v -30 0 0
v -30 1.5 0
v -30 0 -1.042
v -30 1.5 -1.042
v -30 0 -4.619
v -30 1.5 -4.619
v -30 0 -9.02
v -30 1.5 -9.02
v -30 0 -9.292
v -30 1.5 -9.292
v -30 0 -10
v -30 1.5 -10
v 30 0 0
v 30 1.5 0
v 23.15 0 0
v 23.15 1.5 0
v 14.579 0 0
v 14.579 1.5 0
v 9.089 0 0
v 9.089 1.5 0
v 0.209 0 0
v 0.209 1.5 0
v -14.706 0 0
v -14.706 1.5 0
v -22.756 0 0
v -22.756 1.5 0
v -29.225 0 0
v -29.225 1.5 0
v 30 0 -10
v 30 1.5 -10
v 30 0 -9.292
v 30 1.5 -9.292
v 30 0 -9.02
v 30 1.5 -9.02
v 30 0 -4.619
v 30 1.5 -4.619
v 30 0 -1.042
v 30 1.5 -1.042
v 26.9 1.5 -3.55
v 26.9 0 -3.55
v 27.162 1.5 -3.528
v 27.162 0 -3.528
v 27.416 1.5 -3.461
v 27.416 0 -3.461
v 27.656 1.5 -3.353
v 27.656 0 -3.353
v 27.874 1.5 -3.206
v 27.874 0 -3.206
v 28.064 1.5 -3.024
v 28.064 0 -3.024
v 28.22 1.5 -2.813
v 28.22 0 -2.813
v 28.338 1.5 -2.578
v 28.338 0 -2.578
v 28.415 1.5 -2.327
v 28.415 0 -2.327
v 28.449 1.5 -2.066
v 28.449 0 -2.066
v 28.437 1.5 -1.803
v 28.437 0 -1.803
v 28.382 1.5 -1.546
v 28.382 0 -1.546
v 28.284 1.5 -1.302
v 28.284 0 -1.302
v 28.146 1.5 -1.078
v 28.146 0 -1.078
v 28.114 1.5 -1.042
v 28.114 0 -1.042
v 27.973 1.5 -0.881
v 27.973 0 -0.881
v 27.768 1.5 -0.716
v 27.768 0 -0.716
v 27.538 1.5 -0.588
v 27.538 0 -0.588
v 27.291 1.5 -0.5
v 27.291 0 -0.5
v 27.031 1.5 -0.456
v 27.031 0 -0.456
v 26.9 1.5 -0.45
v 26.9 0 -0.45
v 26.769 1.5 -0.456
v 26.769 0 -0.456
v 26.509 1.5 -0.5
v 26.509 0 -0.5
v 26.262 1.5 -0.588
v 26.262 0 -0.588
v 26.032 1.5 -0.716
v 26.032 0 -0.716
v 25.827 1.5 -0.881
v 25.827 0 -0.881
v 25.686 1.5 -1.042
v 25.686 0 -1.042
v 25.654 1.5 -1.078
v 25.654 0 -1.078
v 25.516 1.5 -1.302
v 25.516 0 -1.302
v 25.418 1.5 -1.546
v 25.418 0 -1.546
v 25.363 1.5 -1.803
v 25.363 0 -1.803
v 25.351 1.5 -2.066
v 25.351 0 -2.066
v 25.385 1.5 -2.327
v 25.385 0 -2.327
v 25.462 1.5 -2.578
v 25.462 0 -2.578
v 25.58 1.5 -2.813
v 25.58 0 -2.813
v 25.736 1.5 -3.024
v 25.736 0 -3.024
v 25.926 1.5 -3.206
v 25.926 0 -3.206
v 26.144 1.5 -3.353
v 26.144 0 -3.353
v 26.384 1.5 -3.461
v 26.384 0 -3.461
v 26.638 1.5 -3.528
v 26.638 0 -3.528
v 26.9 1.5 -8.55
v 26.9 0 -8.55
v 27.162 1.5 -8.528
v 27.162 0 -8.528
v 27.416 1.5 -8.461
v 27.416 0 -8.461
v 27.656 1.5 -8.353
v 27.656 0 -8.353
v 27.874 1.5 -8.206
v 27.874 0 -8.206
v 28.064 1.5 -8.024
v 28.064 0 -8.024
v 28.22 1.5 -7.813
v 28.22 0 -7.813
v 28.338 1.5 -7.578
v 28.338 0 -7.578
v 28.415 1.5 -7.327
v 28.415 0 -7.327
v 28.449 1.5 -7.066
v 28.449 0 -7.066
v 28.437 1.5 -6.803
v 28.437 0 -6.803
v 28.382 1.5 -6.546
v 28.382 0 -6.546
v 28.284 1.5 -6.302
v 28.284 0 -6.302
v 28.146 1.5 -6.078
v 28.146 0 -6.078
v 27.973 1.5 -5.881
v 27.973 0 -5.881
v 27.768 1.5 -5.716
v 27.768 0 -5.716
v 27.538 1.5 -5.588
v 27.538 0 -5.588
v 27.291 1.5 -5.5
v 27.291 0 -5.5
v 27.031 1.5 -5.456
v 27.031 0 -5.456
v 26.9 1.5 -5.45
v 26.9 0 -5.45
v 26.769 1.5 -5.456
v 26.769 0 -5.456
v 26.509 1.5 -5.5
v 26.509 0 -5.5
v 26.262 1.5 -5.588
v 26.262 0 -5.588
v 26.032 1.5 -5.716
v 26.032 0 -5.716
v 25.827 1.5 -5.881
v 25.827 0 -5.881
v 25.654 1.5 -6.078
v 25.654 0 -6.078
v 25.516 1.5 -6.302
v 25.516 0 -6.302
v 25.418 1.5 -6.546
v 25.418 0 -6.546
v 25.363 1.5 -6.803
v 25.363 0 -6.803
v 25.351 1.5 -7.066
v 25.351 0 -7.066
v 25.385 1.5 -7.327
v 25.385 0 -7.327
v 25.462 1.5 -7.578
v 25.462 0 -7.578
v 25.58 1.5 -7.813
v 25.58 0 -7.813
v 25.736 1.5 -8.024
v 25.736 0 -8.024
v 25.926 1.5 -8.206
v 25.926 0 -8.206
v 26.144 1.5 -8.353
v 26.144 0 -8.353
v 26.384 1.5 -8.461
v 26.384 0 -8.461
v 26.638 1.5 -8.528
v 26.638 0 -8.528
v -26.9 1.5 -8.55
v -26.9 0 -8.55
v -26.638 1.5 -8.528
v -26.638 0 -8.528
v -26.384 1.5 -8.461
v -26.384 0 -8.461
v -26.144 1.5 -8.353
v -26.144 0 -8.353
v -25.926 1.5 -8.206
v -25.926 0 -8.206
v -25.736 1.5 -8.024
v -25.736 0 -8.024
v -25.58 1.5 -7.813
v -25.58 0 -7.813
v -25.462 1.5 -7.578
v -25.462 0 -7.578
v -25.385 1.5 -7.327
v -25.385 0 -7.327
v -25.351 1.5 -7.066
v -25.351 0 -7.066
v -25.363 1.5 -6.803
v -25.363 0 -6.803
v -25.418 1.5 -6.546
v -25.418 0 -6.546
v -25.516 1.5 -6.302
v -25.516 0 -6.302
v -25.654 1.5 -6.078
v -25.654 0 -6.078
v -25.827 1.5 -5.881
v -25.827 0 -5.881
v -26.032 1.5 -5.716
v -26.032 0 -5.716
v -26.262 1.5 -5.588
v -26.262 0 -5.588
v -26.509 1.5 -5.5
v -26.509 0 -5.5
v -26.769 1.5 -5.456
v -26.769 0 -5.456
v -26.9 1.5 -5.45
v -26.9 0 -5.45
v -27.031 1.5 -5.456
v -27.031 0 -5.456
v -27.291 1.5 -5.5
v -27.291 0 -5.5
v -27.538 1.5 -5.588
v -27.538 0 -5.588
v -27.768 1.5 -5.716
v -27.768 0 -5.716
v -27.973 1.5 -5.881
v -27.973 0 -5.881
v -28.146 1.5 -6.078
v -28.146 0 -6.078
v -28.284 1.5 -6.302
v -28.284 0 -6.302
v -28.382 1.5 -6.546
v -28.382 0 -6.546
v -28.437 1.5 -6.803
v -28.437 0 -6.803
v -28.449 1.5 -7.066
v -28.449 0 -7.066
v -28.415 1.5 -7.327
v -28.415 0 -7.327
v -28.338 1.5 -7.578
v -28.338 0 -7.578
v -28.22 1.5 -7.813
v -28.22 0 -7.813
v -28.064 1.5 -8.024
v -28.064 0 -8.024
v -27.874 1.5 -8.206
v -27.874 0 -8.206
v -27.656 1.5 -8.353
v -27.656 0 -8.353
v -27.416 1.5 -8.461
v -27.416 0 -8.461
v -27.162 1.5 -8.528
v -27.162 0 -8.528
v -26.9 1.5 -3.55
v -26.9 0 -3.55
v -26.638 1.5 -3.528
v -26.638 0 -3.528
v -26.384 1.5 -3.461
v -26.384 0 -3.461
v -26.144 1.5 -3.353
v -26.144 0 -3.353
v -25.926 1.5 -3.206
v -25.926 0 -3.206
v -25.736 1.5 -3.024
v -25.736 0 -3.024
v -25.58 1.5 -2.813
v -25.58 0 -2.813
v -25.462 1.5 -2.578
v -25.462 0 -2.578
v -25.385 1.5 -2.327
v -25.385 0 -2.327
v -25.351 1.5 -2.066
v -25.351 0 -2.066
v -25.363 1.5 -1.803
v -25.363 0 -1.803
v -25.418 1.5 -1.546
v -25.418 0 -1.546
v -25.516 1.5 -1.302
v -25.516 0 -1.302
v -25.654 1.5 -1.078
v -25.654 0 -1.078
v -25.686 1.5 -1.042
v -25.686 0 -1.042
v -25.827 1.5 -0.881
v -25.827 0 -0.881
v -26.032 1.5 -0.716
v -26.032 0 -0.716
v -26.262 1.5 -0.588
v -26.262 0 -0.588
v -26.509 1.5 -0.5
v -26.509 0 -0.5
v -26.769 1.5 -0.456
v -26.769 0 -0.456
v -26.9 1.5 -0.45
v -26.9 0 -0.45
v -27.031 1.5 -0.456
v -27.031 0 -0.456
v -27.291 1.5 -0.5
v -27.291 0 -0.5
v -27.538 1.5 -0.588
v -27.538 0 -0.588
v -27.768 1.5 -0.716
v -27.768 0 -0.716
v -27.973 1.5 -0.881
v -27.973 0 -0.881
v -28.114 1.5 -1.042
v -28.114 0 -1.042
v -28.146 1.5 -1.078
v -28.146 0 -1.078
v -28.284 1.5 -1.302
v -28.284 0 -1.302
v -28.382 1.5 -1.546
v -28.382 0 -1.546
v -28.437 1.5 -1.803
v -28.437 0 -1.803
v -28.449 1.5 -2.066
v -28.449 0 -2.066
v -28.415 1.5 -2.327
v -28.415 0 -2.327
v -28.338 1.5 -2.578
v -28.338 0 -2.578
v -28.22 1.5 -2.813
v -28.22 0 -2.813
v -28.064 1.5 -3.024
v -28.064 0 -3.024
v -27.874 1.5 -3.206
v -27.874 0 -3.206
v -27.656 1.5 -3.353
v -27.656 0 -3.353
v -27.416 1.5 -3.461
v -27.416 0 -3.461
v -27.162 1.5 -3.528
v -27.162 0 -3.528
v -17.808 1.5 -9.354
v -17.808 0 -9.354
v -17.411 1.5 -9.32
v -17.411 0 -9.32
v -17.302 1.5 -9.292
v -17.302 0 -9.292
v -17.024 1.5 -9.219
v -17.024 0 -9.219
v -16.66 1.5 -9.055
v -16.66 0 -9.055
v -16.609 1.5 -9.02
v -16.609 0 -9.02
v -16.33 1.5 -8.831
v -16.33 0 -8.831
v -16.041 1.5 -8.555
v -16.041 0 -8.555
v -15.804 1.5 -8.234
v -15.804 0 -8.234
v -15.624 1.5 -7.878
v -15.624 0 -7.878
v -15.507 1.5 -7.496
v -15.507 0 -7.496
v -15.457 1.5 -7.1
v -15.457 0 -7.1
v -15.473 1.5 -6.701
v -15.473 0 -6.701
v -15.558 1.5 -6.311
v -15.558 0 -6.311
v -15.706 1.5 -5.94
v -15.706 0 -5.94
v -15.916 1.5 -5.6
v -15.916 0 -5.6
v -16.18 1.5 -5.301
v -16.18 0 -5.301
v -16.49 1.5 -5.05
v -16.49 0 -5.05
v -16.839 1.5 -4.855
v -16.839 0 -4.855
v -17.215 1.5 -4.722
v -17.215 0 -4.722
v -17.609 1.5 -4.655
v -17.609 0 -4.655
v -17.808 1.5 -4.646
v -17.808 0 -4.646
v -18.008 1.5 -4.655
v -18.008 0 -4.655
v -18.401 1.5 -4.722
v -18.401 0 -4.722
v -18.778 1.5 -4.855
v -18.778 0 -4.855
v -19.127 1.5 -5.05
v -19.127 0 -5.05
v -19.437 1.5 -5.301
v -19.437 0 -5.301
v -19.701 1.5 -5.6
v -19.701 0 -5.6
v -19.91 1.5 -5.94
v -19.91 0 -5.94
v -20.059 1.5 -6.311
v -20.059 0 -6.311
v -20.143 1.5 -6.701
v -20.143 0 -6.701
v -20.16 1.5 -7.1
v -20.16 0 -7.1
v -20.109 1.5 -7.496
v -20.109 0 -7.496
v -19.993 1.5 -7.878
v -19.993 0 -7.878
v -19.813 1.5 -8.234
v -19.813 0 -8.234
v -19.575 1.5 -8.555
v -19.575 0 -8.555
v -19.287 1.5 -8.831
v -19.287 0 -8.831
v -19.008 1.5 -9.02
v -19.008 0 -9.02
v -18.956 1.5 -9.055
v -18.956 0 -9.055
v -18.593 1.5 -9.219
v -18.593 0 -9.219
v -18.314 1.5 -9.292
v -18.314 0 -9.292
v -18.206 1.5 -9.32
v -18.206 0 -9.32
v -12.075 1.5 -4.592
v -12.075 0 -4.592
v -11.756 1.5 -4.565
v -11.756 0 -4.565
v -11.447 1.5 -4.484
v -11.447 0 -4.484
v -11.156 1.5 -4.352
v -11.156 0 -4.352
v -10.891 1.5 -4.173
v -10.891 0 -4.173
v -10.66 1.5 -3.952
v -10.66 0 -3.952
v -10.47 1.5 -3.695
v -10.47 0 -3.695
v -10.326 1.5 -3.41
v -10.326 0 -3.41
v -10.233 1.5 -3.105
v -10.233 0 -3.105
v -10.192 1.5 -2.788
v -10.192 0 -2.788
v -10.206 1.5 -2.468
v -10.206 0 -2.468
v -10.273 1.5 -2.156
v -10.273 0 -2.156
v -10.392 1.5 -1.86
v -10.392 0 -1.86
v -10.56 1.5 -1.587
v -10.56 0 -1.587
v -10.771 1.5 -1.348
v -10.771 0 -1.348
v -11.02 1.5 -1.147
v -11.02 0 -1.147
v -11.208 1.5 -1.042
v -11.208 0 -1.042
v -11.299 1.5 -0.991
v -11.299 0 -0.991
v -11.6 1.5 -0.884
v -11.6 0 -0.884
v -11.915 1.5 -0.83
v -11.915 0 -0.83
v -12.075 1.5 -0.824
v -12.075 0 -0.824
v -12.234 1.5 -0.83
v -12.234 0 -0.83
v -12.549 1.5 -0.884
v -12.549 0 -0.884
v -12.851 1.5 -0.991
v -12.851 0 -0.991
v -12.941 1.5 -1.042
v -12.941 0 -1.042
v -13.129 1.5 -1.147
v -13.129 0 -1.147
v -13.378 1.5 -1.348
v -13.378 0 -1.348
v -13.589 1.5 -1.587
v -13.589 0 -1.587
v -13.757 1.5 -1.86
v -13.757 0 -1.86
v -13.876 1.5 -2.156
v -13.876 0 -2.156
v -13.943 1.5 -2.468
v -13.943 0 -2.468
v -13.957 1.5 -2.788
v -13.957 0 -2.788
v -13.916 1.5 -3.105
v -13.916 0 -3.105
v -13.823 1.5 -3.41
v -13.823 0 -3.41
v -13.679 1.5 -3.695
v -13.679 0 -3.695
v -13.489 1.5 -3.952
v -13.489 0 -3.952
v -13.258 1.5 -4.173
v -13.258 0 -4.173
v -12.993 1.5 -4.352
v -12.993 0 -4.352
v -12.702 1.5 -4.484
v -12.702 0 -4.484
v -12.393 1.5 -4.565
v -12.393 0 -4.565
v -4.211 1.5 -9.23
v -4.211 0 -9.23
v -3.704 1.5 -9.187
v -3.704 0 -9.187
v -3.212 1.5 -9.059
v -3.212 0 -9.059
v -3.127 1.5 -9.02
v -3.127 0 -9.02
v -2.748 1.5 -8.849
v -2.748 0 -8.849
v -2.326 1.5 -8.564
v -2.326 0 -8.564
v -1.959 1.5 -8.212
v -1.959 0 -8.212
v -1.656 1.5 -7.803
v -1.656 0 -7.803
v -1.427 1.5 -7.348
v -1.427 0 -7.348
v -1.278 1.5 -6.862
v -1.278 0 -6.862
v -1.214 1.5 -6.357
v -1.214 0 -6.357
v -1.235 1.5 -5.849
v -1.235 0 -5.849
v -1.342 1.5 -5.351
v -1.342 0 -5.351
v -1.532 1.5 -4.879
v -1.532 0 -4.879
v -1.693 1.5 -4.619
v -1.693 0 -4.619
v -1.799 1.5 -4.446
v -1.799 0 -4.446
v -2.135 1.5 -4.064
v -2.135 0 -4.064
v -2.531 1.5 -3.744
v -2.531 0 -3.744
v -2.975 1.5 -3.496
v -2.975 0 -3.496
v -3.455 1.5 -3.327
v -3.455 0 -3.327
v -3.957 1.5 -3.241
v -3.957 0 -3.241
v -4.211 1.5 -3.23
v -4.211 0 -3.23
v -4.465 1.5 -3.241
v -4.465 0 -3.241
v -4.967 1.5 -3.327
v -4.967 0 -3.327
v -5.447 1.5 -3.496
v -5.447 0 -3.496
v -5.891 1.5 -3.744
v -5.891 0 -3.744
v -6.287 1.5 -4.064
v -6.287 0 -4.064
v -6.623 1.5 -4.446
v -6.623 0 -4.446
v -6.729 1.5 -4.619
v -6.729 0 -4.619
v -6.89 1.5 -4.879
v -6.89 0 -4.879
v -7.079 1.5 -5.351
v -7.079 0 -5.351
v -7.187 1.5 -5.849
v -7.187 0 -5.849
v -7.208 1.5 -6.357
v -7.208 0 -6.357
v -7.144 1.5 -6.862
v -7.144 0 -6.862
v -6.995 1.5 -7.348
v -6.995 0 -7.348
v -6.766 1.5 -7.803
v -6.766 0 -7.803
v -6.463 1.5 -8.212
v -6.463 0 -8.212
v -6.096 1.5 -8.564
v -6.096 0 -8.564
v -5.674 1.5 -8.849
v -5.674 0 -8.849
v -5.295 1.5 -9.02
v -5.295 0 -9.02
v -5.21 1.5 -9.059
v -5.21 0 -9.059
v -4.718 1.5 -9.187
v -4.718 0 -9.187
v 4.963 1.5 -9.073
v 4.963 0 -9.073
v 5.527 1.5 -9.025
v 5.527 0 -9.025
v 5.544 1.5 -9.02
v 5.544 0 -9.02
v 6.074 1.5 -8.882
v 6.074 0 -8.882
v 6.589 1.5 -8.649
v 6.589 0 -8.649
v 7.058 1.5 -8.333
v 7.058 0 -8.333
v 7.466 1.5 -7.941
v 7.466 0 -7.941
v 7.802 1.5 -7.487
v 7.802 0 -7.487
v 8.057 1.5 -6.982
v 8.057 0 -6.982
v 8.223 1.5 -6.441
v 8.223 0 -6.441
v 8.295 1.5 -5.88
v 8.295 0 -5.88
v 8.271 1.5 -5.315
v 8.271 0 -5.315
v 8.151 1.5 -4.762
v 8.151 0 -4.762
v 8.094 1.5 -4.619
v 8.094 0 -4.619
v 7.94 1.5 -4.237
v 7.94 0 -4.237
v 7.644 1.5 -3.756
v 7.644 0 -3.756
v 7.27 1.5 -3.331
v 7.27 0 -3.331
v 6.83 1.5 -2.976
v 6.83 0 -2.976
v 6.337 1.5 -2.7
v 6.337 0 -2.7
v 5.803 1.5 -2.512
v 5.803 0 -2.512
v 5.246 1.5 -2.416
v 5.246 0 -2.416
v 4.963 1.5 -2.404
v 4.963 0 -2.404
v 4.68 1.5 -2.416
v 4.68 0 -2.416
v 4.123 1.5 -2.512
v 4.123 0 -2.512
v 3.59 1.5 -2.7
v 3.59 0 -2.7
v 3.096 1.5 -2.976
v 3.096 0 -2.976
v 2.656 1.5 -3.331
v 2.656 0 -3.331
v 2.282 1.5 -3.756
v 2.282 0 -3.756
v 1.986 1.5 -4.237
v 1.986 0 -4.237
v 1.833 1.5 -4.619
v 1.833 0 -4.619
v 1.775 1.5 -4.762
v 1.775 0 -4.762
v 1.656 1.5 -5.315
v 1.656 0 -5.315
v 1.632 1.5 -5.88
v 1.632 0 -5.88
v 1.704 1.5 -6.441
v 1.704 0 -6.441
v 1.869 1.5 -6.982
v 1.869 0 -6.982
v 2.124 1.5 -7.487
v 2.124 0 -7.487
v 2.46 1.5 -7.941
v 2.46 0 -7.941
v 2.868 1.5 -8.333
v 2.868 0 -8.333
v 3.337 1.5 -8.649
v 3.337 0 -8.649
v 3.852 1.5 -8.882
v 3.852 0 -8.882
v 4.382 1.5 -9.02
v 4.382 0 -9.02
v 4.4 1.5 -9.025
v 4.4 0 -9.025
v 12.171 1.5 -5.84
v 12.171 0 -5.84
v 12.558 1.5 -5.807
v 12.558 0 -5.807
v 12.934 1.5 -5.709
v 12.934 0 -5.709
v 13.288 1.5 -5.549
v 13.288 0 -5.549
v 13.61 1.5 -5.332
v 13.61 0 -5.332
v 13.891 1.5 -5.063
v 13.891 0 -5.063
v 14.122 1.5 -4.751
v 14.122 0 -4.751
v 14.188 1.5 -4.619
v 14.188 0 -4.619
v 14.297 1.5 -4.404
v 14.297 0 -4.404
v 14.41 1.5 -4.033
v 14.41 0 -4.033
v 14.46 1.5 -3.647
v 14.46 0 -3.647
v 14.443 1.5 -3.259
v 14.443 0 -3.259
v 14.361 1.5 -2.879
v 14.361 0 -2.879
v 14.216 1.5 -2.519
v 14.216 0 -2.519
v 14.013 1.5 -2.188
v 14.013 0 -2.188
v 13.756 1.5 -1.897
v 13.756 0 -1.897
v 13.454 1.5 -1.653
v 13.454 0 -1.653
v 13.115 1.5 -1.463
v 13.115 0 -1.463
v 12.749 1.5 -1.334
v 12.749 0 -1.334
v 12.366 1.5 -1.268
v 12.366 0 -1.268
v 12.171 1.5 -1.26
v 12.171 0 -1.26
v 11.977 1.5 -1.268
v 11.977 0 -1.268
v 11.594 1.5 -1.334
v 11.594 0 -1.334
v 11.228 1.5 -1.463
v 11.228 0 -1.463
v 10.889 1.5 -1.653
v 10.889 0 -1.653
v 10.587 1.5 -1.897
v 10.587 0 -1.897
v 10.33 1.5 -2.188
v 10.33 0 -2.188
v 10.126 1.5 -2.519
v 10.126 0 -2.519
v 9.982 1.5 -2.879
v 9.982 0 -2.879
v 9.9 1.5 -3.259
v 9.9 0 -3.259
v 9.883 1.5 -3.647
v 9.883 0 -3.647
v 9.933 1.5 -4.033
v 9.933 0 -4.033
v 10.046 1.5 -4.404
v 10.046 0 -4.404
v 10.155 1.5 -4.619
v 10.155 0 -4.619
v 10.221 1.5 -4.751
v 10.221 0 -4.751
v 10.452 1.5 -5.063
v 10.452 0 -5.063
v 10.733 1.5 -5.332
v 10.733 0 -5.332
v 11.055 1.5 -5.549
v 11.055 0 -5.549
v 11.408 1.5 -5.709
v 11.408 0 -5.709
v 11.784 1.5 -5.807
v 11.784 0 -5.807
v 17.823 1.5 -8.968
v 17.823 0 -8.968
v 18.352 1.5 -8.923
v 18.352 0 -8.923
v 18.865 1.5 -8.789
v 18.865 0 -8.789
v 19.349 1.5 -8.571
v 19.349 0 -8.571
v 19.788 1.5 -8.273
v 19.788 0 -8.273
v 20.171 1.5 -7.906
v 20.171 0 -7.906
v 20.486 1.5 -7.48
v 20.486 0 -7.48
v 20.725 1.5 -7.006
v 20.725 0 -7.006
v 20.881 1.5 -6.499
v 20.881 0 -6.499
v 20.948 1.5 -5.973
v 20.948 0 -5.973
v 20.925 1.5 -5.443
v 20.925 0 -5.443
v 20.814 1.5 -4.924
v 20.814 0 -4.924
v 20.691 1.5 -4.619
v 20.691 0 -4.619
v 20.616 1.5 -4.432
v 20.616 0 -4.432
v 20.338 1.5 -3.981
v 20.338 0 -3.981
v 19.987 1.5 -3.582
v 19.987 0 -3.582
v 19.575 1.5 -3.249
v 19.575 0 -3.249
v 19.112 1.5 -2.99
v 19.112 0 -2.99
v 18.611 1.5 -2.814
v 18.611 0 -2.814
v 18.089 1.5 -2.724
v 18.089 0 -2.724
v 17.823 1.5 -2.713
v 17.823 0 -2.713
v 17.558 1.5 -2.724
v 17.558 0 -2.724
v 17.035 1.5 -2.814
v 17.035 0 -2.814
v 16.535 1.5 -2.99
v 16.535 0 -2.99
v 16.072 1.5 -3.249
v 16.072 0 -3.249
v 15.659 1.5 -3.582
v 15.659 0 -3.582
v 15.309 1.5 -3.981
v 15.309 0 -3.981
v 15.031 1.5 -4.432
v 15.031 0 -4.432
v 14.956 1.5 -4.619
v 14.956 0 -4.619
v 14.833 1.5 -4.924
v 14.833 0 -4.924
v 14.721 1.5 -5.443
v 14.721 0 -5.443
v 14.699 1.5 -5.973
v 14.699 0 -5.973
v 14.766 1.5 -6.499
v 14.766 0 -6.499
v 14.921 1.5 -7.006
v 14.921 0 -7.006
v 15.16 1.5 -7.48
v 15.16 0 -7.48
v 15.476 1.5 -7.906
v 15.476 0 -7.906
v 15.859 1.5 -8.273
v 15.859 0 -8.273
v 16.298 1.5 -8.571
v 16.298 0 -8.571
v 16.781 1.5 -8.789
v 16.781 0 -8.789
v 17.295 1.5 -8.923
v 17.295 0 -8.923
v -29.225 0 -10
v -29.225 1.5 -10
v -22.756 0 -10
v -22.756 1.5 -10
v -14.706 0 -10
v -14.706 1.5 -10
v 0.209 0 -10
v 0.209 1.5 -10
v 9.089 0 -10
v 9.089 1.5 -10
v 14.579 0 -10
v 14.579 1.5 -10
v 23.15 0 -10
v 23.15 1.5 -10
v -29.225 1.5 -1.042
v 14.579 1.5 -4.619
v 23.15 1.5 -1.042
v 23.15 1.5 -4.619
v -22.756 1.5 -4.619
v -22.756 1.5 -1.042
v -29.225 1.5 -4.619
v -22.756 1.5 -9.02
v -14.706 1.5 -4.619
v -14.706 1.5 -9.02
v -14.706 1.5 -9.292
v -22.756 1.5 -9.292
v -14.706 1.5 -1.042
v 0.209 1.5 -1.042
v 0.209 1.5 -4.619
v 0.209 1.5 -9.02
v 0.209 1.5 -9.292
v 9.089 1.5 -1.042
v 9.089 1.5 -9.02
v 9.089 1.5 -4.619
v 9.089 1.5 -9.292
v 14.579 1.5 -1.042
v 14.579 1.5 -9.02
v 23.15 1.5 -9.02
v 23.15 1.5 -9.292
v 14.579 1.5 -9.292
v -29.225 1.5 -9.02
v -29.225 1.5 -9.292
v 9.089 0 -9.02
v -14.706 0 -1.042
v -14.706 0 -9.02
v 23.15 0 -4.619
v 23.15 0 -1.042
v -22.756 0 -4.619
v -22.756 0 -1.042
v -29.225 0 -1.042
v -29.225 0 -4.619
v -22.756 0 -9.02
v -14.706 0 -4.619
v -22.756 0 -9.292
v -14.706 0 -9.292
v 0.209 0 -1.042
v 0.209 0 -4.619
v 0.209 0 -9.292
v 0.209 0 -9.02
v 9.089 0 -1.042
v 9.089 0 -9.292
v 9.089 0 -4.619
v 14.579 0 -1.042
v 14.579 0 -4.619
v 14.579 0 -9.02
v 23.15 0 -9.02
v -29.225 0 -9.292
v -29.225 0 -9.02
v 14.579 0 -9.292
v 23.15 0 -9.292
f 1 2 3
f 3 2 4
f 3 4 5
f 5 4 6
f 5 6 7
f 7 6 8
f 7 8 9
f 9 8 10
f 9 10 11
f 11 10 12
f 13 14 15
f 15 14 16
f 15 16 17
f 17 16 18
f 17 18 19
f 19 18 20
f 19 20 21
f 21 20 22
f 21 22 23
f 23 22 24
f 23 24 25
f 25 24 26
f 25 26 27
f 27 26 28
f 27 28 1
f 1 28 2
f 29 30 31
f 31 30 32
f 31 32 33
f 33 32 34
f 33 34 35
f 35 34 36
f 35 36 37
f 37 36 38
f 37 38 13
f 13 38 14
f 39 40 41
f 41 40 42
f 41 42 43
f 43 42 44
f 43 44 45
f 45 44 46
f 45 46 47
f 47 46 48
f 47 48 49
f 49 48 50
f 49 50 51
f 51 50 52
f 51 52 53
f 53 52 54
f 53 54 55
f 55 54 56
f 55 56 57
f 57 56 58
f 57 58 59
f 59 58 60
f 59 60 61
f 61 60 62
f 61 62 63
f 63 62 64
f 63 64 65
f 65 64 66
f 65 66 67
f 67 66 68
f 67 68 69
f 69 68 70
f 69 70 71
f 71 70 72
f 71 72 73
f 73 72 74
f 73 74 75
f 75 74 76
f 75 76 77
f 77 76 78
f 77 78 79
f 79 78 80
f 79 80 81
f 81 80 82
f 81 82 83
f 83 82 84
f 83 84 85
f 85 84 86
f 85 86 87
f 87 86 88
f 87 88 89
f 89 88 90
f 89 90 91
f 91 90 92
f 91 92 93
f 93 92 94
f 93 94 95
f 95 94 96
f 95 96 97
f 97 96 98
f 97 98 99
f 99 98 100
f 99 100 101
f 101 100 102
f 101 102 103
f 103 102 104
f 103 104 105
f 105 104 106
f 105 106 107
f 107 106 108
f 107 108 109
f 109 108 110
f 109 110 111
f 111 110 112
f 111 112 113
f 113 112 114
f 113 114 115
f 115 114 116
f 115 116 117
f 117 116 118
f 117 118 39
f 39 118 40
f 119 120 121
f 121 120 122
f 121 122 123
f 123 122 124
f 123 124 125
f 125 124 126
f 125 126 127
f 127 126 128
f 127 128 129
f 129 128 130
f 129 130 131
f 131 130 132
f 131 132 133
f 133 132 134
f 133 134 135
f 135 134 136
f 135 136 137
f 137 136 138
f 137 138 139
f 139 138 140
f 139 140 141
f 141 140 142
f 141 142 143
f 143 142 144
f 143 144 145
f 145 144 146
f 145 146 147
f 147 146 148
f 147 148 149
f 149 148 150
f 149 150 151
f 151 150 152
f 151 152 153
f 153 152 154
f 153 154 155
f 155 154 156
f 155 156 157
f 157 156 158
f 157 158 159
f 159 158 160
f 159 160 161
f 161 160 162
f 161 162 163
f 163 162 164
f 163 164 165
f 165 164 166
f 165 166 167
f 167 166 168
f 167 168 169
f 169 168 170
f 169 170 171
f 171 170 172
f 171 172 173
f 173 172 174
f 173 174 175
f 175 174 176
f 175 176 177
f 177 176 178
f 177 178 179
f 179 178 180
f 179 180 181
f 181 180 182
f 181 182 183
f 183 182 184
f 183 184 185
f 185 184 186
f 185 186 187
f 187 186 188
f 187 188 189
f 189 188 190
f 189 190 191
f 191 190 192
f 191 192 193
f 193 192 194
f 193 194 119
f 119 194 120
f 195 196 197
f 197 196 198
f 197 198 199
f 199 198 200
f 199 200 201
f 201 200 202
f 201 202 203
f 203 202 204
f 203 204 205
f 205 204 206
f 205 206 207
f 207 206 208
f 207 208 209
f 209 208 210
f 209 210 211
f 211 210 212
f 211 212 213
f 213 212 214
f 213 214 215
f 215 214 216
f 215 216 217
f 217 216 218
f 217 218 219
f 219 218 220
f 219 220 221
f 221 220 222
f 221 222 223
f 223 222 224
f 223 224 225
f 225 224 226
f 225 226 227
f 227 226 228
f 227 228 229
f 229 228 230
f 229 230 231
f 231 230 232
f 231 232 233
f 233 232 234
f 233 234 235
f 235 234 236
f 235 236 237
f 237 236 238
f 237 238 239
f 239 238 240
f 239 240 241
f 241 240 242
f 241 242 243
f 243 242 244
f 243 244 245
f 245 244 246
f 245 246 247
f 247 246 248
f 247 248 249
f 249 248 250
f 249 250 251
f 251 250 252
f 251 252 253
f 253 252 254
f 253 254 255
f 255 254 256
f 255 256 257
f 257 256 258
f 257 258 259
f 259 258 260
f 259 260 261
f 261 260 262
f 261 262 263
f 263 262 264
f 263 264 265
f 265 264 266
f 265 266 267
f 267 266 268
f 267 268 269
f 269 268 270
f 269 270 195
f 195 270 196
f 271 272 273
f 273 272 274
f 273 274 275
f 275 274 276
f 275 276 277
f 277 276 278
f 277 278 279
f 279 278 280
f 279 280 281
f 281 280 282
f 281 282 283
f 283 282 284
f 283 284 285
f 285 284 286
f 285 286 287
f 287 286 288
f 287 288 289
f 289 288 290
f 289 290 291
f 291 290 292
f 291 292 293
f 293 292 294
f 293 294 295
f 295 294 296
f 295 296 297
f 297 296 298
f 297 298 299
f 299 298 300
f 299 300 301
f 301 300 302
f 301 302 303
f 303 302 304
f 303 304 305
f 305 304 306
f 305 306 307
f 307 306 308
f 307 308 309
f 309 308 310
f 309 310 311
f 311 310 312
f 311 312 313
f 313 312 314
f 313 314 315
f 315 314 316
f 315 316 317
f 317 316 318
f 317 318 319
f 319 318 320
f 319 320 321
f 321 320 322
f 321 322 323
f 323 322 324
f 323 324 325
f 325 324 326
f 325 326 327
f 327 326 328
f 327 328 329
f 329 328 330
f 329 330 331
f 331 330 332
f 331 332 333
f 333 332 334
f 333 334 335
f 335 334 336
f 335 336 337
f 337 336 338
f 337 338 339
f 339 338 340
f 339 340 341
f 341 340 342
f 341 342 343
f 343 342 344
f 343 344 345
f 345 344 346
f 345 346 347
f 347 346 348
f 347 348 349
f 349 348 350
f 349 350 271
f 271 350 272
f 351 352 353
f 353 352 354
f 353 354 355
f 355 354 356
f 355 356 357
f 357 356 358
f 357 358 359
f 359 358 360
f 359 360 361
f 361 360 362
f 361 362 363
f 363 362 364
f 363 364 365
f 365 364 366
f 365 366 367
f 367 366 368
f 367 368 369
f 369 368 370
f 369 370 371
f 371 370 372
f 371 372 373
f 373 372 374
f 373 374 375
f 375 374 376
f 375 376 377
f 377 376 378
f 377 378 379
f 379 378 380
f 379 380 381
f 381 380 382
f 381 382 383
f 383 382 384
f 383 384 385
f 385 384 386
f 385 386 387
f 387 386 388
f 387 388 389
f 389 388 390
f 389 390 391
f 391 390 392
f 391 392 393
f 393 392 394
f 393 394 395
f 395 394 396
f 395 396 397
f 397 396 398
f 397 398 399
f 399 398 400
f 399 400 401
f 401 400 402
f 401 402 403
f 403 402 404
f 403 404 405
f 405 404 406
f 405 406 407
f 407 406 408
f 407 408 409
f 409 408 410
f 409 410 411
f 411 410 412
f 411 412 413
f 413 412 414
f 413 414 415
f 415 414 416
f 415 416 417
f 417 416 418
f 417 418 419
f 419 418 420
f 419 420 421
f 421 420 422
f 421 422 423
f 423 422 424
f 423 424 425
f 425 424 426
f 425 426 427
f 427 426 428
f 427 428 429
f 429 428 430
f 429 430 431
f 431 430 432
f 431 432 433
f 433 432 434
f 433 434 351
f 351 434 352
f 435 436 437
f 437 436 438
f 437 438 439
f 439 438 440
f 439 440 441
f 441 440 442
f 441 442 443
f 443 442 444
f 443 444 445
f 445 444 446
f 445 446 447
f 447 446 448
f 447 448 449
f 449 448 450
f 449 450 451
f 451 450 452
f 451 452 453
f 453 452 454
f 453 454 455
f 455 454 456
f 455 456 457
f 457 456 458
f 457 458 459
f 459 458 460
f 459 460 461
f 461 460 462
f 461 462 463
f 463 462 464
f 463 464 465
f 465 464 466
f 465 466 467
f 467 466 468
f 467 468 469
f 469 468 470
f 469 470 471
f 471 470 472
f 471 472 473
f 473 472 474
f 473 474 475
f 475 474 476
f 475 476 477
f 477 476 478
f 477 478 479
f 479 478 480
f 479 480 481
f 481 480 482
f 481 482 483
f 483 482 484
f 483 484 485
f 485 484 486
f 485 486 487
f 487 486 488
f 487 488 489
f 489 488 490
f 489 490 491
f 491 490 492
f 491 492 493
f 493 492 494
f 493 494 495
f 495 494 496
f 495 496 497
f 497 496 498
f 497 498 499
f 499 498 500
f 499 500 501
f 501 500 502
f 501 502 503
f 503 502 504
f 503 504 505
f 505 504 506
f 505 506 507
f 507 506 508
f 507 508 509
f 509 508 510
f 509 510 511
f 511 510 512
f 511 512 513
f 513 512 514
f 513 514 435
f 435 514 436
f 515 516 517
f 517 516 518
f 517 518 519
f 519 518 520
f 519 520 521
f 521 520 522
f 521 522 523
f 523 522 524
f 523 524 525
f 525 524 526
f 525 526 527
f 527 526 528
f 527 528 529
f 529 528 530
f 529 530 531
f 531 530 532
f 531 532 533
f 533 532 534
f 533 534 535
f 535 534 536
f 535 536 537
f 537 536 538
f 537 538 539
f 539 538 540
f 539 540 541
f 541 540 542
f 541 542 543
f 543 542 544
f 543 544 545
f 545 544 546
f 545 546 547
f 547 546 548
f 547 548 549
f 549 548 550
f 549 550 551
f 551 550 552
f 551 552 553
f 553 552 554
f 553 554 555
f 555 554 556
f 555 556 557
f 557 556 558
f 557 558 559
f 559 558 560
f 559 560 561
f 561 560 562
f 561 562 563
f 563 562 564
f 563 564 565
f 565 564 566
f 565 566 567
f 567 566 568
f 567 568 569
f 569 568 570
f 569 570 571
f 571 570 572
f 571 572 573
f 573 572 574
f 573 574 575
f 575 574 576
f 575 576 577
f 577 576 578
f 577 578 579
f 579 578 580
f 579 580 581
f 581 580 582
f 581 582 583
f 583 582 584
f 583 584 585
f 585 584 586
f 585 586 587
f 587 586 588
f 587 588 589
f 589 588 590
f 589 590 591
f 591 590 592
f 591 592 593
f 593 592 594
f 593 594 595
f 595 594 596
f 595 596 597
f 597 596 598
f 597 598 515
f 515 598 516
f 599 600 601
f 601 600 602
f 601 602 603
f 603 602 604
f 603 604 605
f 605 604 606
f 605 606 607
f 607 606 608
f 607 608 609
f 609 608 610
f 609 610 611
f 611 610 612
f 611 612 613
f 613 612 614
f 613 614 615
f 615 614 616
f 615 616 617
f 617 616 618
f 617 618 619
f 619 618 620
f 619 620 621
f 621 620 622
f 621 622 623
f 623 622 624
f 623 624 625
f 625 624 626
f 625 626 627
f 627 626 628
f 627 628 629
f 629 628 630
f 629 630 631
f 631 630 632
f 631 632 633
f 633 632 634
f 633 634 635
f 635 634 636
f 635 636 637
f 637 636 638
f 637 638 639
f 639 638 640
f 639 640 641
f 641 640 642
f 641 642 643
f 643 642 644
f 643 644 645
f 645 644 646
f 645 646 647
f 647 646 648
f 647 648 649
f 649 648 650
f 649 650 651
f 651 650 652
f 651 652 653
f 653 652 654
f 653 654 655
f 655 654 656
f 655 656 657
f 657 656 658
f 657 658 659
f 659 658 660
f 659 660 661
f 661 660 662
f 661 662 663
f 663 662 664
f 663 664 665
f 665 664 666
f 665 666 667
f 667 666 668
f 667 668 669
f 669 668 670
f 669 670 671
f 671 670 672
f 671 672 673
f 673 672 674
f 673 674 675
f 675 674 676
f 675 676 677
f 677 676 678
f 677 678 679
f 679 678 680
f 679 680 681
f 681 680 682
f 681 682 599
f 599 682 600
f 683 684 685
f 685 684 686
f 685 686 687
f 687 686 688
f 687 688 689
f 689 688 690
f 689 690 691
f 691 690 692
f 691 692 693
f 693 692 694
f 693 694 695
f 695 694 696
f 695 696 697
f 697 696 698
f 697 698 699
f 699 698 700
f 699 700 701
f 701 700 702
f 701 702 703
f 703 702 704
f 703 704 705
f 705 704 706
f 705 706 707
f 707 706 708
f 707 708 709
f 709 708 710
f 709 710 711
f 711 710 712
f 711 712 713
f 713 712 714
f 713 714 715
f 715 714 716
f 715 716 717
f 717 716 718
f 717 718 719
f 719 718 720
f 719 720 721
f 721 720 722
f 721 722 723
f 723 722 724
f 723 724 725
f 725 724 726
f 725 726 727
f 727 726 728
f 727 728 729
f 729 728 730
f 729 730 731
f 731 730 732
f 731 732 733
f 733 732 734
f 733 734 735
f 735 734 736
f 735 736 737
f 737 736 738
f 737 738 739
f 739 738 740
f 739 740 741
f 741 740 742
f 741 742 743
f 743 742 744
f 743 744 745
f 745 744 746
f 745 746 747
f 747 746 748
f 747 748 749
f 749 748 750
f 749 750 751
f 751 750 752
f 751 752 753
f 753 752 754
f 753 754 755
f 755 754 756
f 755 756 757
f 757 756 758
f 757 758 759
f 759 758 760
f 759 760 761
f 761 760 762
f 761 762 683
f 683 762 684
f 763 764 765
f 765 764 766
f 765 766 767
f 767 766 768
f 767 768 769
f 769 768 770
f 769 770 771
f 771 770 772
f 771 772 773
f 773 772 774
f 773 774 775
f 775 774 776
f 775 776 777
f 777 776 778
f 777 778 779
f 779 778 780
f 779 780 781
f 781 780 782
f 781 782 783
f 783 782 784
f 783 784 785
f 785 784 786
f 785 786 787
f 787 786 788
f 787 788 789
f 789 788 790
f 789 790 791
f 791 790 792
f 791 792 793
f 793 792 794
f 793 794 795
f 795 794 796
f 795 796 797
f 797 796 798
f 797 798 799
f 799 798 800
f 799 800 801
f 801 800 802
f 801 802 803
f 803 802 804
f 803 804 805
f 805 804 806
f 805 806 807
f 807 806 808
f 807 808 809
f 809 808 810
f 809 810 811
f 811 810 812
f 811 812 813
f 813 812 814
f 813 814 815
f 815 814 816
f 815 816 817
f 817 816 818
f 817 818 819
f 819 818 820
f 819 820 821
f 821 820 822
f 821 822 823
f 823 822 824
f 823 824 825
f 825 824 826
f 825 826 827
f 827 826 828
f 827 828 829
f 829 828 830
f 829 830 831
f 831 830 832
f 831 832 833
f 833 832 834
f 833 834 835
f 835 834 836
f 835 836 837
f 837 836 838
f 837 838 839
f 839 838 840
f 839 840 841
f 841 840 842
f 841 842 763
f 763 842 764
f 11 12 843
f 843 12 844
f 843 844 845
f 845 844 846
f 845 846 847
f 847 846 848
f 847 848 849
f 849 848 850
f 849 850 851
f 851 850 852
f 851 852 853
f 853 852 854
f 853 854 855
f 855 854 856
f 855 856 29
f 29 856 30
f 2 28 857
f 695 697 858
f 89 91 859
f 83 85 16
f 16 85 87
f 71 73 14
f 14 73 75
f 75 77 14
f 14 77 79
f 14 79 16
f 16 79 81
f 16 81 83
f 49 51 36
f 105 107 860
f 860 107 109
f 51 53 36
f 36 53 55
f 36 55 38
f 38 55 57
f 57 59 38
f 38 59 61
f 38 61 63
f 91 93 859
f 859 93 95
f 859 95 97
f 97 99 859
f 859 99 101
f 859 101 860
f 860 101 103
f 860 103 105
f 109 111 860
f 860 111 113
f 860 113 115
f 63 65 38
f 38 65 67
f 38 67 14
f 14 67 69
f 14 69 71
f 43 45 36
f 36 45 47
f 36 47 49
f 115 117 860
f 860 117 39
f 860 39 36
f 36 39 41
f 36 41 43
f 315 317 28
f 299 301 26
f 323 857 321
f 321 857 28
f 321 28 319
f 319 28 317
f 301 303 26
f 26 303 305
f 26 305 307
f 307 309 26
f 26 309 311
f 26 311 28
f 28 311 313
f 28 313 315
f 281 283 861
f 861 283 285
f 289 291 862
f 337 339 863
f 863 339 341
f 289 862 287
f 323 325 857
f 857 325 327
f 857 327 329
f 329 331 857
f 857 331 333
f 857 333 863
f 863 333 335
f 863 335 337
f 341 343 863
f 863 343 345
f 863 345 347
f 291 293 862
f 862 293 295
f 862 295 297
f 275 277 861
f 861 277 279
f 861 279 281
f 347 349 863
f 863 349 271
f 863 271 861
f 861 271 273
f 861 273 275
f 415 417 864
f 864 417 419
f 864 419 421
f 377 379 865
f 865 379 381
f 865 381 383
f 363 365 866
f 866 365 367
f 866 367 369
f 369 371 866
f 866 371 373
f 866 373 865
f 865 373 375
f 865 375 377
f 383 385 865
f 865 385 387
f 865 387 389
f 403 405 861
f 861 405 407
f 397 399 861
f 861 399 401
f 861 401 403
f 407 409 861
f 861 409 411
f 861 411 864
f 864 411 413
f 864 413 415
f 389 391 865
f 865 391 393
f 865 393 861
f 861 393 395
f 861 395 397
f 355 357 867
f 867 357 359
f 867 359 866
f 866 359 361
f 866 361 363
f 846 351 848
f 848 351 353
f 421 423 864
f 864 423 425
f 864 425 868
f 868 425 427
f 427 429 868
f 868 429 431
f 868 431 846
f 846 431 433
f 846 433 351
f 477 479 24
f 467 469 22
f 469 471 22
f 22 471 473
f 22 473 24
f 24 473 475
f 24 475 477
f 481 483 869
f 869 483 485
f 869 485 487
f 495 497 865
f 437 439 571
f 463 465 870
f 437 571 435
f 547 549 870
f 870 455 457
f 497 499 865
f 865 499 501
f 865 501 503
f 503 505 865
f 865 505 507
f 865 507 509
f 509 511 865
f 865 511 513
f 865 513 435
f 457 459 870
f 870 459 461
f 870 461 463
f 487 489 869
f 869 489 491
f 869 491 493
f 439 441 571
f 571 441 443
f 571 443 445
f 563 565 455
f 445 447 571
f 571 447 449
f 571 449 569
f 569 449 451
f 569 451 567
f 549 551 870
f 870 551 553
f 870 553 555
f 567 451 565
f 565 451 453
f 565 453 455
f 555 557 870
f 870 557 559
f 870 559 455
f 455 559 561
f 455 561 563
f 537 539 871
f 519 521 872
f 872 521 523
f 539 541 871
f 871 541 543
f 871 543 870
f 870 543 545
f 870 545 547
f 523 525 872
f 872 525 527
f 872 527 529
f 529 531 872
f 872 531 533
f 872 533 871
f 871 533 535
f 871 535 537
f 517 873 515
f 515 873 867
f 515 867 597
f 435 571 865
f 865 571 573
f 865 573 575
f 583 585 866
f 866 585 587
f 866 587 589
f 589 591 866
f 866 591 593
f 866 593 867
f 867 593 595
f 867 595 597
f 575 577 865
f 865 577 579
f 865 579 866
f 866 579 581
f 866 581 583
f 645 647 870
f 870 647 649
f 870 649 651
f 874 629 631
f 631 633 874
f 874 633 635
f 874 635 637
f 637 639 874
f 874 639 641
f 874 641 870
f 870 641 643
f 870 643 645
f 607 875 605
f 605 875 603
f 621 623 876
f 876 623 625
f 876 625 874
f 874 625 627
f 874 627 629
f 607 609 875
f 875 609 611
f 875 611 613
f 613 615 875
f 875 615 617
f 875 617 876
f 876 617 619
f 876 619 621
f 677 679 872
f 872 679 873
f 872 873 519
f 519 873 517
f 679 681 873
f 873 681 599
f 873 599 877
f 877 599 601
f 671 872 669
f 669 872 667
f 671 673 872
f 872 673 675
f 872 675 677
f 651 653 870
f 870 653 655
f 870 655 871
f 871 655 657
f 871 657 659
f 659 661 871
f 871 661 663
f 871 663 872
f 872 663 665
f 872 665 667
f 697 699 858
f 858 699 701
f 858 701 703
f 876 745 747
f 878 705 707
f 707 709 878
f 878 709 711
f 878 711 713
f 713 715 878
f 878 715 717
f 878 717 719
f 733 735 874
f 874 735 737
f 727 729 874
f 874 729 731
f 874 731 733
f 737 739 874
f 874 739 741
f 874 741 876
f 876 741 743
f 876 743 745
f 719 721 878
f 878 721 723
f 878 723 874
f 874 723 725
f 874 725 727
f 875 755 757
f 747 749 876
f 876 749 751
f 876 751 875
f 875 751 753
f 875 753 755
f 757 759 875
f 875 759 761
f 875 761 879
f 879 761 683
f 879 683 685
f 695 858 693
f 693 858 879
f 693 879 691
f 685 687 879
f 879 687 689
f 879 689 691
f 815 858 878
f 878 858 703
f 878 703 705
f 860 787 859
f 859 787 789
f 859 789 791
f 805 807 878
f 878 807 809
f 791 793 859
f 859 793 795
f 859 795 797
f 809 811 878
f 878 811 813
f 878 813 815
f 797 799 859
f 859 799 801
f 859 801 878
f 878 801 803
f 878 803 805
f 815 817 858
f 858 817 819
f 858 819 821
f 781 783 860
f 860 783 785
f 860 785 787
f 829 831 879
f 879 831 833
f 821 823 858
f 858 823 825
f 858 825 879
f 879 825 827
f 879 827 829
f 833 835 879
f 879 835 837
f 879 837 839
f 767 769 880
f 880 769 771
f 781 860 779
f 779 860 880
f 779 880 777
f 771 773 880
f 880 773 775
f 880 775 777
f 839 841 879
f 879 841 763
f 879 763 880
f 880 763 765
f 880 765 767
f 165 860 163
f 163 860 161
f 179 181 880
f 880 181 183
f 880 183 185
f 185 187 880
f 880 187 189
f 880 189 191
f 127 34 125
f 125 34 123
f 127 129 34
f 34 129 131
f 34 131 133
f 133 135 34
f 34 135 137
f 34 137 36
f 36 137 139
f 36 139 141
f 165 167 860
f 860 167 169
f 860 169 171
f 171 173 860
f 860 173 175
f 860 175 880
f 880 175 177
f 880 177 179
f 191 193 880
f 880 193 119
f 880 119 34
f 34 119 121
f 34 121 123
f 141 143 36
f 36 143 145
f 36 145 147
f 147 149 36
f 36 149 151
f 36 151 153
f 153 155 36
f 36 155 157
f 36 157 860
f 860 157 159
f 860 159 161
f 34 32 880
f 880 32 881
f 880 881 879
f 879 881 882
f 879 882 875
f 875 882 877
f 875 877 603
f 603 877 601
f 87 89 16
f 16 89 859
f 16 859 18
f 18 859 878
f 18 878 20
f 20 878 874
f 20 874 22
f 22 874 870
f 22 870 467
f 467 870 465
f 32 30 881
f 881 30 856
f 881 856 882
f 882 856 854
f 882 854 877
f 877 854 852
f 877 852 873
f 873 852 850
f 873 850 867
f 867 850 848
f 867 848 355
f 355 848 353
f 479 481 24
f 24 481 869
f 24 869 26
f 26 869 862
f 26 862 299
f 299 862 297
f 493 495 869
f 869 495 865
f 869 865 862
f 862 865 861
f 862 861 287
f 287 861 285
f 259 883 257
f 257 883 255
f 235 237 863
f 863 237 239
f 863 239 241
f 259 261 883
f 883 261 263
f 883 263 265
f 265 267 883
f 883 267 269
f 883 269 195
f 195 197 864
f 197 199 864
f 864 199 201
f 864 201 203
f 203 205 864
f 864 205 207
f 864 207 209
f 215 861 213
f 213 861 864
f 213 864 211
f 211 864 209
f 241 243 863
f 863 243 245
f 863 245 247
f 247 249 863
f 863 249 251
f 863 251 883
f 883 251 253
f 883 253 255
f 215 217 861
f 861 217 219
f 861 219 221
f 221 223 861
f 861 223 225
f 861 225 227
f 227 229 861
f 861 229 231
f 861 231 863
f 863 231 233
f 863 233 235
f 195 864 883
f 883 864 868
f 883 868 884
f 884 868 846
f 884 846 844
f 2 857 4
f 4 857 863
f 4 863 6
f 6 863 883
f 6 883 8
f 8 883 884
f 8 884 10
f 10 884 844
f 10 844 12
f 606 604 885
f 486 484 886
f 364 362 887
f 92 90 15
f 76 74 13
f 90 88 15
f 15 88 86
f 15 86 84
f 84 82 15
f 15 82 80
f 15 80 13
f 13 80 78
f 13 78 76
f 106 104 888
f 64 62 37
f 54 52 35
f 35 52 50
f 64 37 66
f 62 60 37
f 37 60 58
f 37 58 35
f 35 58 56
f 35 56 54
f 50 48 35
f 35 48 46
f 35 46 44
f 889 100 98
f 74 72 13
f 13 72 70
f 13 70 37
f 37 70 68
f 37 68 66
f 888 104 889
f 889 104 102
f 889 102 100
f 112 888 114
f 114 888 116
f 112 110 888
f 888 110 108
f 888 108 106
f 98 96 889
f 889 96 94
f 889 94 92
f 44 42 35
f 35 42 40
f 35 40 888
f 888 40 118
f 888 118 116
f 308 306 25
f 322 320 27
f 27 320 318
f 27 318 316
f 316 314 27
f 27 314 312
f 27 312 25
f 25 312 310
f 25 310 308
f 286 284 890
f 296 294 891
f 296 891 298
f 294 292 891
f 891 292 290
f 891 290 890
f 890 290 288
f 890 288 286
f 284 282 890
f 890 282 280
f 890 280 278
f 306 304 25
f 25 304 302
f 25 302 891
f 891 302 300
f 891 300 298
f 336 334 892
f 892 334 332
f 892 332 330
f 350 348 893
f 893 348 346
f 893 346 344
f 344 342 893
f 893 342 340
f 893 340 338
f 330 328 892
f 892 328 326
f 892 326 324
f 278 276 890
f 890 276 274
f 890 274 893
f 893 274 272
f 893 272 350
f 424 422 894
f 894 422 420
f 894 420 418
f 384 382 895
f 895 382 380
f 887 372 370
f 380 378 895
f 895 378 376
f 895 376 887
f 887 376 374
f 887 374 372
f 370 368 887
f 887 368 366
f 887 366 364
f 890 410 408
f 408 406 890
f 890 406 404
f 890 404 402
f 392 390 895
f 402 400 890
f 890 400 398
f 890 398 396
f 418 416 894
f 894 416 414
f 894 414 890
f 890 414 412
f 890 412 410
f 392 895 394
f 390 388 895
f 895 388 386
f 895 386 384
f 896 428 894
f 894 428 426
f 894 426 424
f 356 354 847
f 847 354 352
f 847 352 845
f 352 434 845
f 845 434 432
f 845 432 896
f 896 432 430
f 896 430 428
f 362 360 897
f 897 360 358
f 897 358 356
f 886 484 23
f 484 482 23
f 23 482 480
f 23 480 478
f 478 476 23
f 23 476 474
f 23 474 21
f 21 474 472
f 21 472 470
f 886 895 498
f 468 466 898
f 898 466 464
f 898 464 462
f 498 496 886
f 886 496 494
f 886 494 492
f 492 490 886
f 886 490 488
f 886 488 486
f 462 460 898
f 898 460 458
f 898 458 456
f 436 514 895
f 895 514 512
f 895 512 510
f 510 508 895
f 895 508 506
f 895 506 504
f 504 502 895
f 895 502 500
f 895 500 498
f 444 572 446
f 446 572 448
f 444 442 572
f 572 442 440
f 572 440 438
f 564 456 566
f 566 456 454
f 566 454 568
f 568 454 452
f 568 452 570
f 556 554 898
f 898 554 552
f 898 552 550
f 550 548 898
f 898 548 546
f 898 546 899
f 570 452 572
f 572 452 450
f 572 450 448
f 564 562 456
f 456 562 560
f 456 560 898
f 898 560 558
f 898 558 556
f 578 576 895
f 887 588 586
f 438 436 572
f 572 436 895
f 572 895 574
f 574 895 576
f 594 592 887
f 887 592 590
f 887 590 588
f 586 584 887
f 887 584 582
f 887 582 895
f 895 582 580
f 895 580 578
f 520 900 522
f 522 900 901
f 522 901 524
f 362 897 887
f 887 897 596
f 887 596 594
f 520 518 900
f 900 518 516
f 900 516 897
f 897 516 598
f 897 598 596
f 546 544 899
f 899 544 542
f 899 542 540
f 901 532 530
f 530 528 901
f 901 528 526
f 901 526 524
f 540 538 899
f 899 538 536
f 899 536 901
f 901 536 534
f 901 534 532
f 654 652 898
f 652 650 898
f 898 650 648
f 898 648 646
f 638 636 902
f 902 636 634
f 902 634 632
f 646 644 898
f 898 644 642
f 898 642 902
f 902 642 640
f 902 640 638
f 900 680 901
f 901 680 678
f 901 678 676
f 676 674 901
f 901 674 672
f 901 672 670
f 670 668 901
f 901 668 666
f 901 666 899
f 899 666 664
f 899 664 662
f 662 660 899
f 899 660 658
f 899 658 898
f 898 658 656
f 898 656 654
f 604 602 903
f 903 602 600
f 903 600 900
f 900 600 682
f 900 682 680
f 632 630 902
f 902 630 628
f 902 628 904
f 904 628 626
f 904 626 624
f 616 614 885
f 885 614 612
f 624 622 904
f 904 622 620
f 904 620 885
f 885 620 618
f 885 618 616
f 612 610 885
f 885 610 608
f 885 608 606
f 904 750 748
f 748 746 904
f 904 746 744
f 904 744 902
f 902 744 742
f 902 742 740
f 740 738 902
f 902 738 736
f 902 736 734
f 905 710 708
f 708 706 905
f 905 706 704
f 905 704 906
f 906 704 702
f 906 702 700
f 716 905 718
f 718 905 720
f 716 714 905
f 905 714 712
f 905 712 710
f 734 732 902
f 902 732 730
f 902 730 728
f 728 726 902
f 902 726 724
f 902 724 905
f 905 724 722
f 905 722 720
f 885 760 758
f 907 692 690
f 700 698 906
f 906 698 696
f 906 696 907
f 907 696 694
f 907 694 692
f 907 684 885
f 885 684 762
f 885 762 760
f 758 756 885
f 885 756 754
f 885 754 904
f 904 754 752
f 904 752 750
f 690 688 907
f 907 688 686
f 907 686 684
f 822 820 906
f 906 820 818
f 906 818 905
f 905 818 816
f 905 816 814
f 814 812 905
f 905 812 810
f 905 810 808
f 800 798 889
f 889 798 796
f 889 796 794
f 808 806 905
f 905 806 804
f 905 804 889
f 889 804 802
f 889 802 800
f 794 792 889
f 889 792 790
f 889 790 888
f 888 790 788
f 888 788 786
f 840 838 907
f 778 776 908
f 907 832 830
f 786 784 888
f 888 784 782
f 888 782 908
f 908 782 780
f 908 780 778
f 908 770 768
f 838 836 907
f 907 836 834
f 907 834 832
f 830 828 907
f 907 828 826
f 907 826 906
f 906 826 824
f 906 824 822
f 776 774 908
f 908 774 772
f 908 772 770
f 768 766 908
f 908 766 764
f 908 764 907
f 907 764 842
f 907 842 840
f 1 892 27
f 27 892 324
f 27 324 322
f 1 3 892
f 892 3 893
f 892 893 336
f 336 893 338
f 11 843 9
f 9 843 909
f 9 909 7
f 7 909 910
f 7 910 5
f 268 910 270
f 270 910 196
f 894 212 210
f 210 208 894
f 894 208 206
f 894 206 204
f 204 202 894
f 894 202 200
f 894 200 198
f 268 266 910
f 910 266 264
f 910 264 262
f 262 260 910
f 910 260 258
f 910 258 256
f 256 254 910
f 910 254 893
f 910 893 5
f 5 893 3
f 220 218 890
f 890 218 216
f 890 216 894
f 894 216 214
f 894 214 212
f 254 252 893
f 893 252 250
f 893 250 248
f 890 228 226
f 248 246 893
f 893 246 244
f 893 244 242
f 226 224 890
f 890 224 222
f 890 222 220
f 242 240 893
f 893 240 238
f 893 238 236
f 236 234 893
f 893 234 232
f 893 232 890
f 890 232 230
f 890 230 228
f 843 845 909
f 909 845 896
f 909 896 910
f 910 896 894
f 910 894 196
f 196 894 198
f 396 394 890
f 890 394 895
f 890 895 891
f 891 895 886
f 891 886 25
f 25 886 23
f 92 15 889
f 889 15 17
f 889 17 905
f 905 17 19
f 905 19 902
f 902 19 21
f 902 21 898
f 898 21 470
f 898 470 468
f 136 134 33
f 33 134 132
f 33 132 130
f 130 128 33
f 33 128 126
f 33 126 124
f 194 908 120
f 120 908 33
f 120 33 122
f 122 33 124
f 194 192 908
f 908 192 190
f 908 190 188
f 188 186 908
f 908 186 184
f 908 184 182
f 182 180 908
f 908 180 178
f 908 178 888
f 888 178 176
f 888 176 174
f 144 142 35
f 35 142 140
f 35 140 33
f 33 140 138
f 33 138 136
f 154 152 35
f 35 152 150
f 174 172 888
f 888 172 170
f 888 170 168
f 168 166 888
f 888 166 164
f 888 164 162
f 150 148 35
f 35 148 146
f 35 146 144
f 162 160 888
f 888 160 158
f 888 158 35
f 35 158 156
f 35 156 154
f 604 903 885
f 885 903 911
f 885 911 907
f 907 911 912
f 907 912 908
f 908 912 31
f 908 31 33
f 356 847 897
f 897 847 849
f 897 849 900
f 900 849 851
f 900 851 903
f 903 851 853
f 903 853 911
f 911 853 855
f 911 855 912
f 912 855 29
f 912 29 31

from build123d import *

# Parameters (mm, degrees)
SKETCH_1_R      = 3.127436884
SKETCH_1_R_2    = 2.290236854
SKETCH_1_R_3    = 3.334332824
SKETCH_1_R_4    = 3
SKETCH_1_R_5    = 1.883976709
SKETCH_1_R_6    = 2.353930843
SKETCH_1_R_7    = 1.55
EXTRUDE_1_DEPTH = 1.5


with BuildPart() as part:
    # 草图1 → 凸台-拉伸1 (new body)
    with BuildSketch(Plane(origin=(0, 0, 0), x_dir=(1, 0, 0), z_dir=(0, 1, 0))):
        Polygon((-30, 10), (-30, 0), (0, 0), (30, 0), (30, 10), align=None)
        with Locations((17.823374051, 5.840236854)):
            Circle(SKETCH_1_R, mode=Mode.SUBTRACT)
        with Locations((12.171443923, 3.55)):
            Circle(SKETCH_1_R_2, mode=Mode.SUBTRACT)
        with Locations((4.963185209, 5.738422027)):
            Circle(SKETCH_1_R_3, mode=Mode.SUBTRACT)
        with Locations((-4.210962245, 6.229894212)):
            Circle(SKETCH_1_R_4, mode=Mode.SUBTRACT)
        with Locations((-12.074517206, 2.707676886)):
            Circle(SKETCH_1_R_5, mode=Mode.SUBTRACT)
        with Locations((-17.808359365, 7)):
            Circle(SKETCH_1_R_6, mode=Mode.SUBTRACT)
        with Locations((-26.9, 2)):
            Circle(SKETCH_1_R_7, mode=Mode.SUBTRACT)
        with Locations((-26.9, 7)):
            Circle(SKETCH_1_R_7, mode=Mode.SUBTRACT)
        with Locations((26.9, 7)):
            Circle(SKETCH_1_R_7, mode=Mode.SUBTRACT)
        with Locations((26.9, 2)):
            Circle(SKETCH_1_R_7, mode=Mode.SUBTRACT)
    extrude(amount=EXTRUDE_1_DEPTH)


solid = part.part
